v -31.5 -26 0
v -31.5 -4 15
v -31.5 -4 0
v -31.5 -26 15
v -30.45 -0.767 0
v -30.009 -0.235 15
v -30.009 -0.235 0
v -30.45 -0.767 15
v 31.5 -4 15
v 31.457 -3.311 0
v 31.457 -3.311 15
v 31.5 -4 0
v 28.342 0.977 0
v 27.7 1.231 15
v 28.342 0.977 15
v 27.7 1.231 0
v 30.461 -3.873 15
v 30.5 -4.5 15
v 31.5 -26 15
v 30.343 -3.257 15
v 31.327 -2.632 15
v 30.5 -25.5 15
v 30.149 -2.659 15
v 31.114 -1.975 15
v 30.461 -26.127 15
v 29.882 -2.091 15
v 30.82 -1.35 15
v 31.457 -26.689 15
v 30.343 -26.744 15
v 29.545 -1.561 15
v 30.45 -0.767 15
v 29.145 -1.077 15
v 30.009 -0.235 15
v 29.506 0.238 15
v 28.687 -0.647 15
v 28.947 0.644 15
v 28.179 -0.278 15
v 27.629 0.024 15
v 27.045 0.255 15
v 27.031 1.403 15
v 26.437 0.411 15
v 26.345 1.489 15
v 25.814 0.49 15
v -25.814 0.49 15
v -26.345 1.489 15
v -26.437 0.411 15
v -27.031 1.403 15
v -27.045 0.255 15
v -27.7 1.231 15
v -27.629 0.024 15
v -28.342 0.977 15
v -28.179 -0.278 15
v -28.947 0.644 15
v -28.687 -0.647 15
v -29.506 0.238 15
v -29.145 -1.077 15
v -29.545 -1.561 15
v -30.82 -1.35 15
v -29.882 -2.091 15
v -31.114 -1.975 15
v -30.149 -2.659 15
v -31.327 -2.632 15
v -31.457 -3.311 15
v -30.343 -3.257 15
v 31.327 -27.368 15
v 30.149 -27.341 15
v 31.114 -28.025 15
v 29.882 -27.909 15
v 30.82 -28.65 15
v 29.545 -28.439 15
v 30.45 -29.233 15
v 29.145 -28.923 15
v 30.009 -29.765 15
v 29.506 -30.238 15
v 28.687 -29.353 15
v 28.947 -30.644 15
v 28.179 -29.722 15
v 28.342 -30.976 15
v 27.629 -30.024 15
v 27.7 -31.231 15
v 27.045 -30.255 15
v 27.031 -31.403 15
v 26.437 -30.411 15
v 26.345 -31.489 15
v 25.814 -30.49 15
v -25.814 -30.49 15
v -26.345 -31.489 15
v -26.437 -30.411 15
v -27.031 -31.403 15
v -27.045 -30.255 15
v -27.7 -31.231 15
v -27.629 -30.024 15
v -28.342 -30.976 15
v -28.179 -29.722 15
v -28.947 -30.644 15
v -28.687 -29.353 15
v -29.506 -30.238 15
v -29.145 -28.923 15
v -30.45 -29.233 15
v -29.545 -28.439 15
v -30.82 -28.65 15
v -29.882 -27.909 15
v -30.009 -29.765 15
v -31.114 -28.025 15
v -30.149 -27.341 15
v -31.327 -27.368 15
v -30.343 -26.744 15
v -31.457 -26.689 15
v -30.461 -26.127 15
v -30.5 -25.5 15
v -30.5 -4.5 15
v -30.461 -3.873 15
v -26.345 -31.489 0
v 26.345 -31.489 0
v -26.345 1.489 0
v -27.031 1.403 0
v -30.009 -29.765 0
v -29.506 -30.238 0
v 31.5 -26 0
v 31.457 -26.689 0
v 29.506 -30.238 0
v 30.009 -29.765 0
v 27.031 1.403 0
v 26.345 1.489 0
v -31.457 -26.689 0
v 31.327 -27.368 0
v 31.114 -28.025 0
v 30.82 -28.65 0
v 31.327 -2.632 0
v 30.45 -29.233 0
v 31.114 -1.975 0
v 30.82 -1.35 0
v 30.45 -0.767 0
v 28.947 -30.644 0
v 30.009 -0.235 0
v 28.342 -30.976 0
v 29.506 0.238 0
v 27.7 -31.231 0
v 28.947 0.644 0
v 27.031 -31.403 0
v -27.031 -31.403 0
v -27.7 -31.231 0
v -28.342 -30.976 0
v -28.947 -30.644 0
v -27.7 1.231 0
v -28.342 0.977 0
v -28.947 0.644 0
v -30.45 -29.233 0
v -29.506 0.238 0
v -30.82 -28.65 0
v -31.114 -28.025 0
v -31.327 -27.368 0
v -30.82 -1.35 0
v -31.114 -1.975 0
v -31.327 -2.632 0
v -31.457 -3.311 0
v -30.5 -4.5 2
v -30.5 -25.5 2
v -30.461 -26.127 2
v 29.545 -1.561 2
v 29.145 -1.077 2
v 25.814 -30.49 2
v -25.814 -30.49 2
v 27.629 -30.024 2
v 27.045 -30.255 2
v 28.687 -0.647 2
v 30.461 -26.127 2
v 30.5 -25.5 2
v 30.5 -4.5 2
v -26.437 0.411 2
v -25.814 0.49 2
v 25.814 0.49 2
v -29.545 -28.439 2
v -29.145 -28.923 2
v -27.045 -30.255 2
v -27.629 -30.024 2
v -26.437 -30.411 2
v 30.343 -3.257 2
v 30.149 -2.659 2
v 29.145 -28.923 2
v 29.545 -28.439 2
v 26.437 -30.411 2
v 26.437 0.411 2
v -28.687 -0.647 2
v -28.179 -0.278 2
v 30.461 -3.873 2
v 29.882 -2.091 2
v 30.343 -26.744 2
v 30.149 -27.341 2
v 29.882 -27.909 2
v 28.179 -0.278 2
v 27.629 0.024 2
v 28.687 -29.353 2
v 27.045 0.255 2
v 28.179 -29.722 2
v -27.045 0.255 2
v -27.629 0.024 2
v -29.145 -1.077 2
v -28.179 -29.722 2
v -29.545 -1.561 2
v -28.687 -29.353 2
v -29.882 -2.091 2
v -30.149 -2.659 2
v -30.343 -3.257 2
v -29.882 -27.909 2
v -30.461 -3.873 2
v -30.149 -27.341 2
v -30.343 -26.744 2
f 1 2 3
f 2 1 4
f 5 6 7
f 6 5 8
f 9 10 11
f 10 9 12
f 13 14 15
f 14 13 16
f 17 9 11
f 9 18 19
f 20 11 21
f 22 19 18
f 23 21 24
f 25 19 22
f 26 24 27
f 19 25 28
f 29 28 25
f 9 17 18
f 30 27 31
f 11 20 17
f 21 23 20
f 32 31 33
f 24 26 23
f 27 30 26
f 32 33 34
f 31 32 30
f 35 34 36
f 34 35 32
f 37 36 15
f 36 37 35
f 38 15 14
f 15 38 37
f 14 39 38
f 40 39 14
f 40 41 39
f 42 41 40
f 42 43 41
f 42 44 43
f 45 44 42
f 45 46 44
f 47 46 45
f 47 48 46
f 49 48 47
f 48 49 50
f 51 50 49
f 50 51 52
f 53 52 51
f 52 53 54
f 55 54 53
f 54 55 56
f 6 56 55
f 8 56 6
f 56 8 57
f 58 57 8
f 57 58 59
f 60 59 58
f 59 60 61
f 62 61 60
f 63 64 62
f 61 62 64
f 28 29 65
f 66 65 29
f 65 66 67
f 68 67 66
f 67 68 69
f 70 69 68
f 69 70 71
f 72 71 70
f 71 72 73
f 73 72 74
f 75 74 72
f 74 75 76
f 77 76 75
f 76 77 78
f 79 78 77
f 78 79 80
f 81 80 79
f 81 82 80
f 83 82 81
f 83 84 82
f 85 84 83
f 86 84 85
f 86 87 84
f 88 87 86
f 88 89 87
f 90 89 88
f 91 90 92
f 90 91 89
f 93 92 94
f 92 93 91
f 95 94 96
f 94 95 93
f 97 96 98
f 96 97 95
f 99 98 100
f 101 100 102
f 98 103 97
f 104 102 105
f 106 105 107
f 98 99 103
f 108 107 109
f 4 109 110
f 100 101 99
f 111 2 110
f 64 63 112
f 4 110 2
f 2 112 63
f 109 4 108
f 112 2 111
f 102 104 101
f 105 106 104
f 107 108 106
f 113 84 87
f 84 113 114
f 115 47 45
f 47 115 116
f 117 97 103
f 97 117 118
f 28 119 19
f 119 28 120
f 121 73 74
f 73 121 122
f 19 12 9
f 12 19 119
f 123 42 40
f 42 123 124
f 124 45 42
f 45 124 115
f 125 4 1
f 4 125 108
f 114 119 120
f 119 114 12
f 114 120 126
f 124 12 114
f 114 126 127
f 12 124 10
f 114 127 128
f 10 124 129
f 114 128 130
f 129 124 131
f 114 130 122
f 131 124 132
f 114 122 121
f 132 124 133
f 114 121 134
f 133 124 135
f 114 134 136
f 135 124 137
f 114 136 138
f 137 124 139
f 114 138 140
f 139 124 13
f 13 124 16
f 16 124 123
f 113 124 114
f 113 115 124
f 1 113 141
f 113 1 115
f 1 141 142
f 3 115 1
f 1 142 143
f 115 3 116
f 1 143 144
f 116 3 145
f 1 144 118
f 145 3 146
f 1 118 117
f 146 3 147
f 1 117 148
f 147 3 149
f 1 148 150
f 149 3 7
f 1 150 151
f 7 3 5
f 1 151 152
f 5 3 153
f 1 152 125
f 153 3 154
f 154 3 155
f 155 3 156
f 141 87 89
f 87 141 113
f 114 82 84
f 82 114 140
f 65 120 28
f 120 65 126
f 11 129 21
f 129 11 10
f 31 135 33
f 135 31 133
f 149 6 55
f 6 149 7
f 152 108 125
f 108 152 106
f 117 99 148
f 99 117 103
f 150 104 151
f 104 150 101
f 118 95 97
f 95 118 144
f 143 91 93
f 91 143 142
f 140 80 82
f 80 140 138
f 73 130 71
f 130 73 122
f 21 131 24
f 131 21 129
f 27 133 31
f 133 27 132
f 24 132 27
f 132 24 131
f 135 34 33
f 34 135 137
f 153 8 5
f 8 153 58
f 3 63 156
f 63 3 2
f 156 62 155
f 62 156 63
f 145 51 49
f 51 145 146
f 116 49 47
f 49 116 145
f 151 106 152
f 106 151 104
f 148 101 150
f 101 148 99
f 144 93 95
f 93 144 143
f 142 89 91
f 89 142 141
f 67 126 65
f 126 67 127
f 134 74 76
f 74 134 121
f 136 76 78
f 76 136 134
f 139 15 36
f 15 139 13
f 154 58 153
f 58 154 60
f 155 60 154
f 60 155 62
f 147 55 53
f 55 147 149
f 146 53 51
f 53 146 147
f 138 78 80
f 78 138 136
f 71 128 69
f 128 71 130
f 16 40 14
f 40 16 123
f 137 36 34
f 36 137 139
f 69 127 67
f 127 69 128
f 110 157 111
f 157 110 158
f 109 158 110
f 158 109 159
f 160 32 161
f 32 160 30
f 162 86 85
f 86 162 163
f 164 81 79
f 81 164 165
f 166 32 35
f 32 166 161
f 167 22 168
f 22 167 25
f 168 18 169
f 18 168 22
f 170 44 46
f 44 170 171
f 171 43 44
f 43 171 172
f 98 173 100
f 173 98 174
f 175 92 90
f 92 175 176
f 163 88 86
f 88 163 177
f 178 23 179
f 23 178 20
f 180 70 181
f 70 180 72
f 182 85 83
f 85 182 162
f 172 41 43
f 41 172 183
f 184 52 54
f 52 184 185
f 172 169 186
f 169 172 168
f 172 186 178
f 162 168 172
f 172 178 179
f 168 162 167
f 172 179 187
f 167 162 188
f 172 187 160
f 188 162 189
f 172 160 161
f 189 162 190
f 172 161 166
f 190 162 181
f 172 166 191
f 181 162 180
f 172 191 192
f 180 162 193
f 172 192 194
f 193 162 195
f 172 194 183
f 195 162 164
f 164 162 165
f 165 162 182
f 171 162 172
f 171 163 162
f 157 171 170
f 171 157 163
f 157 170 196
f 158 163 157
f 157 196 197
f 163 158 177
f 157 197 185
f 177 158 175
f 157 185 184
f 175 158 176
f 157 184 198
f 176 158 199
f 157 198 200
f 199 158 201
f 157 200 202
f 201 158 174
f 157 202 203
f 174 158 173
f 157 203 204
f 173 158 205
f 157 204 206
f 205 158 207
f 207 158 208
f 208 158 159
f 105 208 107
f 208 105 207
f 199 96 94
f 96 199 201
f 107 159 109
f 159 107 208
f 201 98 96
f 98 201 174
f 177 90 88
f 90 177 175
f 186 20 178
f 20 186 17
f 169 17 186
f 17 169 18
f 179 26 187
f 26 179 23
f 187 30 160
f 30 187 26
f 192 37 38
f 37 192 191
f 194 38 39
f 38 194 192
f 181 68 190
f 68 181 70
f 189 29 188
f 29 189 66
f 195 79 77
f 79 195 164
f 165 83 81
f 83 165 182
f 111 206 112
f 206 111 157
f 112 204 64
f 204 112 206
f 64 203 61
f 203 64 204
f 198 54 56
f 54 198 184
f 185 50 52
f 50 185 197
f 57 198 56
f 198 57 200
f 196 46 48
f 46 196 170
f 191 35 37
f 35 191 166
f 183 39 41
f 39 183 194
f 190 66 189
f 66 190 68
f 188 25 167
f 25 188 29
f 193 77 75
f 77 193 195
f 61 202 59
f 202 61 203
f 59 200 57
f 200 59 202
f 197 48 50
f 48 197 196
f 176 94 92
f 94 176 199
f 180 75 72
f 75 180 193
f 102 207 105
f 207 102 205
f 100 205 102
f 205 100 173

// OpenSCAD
$fn = 50;


difference() {
	union() {
		translate(v = [0, -15.0000000000, 0]) {
			hull() {
				translate(v = [-26.0000000000, 11.0000000000, 0]) {
					cylinder(h = 15, r = 5.5000000000);
				}
				translate(v = [26.0000000000, 11.0000000000, 0]) {
					cylinder(h = 15, r = 5.5000000000);
				}
				translate(v = [-26.0000000000, -11.0000000000, 0]) {
					cylinder(h = 15, r = 5.5000000000);
				}
				translate(v = [26.0000000000, -11.0000000000, 0]) {
					cylinder(h = 15, r = 5.5000000000);
				}
			}
		}
	}
	union() {
		translate(v = [0, -15.0000000000, 2]) {
			hull() {
				translate(v = [-25.5000000000, 10.5000000000, 0]) {
					cylinder(h = 30, r = 5);
				}
				translate(v = [25.5000000000, 10.5000000000, 0]) {
					cylinder(h = 30, r = 5);
				}
				translate(v = [-25.5000000000, -10.5000000000, 0]) {
					cylinder(h = 30, r = 5);
				}
				translate(v = [25.5000000000, -10.5000000000, 0]) {
					cylinder(h = 30, r = 5);
				}
			}
		}
	}
}
